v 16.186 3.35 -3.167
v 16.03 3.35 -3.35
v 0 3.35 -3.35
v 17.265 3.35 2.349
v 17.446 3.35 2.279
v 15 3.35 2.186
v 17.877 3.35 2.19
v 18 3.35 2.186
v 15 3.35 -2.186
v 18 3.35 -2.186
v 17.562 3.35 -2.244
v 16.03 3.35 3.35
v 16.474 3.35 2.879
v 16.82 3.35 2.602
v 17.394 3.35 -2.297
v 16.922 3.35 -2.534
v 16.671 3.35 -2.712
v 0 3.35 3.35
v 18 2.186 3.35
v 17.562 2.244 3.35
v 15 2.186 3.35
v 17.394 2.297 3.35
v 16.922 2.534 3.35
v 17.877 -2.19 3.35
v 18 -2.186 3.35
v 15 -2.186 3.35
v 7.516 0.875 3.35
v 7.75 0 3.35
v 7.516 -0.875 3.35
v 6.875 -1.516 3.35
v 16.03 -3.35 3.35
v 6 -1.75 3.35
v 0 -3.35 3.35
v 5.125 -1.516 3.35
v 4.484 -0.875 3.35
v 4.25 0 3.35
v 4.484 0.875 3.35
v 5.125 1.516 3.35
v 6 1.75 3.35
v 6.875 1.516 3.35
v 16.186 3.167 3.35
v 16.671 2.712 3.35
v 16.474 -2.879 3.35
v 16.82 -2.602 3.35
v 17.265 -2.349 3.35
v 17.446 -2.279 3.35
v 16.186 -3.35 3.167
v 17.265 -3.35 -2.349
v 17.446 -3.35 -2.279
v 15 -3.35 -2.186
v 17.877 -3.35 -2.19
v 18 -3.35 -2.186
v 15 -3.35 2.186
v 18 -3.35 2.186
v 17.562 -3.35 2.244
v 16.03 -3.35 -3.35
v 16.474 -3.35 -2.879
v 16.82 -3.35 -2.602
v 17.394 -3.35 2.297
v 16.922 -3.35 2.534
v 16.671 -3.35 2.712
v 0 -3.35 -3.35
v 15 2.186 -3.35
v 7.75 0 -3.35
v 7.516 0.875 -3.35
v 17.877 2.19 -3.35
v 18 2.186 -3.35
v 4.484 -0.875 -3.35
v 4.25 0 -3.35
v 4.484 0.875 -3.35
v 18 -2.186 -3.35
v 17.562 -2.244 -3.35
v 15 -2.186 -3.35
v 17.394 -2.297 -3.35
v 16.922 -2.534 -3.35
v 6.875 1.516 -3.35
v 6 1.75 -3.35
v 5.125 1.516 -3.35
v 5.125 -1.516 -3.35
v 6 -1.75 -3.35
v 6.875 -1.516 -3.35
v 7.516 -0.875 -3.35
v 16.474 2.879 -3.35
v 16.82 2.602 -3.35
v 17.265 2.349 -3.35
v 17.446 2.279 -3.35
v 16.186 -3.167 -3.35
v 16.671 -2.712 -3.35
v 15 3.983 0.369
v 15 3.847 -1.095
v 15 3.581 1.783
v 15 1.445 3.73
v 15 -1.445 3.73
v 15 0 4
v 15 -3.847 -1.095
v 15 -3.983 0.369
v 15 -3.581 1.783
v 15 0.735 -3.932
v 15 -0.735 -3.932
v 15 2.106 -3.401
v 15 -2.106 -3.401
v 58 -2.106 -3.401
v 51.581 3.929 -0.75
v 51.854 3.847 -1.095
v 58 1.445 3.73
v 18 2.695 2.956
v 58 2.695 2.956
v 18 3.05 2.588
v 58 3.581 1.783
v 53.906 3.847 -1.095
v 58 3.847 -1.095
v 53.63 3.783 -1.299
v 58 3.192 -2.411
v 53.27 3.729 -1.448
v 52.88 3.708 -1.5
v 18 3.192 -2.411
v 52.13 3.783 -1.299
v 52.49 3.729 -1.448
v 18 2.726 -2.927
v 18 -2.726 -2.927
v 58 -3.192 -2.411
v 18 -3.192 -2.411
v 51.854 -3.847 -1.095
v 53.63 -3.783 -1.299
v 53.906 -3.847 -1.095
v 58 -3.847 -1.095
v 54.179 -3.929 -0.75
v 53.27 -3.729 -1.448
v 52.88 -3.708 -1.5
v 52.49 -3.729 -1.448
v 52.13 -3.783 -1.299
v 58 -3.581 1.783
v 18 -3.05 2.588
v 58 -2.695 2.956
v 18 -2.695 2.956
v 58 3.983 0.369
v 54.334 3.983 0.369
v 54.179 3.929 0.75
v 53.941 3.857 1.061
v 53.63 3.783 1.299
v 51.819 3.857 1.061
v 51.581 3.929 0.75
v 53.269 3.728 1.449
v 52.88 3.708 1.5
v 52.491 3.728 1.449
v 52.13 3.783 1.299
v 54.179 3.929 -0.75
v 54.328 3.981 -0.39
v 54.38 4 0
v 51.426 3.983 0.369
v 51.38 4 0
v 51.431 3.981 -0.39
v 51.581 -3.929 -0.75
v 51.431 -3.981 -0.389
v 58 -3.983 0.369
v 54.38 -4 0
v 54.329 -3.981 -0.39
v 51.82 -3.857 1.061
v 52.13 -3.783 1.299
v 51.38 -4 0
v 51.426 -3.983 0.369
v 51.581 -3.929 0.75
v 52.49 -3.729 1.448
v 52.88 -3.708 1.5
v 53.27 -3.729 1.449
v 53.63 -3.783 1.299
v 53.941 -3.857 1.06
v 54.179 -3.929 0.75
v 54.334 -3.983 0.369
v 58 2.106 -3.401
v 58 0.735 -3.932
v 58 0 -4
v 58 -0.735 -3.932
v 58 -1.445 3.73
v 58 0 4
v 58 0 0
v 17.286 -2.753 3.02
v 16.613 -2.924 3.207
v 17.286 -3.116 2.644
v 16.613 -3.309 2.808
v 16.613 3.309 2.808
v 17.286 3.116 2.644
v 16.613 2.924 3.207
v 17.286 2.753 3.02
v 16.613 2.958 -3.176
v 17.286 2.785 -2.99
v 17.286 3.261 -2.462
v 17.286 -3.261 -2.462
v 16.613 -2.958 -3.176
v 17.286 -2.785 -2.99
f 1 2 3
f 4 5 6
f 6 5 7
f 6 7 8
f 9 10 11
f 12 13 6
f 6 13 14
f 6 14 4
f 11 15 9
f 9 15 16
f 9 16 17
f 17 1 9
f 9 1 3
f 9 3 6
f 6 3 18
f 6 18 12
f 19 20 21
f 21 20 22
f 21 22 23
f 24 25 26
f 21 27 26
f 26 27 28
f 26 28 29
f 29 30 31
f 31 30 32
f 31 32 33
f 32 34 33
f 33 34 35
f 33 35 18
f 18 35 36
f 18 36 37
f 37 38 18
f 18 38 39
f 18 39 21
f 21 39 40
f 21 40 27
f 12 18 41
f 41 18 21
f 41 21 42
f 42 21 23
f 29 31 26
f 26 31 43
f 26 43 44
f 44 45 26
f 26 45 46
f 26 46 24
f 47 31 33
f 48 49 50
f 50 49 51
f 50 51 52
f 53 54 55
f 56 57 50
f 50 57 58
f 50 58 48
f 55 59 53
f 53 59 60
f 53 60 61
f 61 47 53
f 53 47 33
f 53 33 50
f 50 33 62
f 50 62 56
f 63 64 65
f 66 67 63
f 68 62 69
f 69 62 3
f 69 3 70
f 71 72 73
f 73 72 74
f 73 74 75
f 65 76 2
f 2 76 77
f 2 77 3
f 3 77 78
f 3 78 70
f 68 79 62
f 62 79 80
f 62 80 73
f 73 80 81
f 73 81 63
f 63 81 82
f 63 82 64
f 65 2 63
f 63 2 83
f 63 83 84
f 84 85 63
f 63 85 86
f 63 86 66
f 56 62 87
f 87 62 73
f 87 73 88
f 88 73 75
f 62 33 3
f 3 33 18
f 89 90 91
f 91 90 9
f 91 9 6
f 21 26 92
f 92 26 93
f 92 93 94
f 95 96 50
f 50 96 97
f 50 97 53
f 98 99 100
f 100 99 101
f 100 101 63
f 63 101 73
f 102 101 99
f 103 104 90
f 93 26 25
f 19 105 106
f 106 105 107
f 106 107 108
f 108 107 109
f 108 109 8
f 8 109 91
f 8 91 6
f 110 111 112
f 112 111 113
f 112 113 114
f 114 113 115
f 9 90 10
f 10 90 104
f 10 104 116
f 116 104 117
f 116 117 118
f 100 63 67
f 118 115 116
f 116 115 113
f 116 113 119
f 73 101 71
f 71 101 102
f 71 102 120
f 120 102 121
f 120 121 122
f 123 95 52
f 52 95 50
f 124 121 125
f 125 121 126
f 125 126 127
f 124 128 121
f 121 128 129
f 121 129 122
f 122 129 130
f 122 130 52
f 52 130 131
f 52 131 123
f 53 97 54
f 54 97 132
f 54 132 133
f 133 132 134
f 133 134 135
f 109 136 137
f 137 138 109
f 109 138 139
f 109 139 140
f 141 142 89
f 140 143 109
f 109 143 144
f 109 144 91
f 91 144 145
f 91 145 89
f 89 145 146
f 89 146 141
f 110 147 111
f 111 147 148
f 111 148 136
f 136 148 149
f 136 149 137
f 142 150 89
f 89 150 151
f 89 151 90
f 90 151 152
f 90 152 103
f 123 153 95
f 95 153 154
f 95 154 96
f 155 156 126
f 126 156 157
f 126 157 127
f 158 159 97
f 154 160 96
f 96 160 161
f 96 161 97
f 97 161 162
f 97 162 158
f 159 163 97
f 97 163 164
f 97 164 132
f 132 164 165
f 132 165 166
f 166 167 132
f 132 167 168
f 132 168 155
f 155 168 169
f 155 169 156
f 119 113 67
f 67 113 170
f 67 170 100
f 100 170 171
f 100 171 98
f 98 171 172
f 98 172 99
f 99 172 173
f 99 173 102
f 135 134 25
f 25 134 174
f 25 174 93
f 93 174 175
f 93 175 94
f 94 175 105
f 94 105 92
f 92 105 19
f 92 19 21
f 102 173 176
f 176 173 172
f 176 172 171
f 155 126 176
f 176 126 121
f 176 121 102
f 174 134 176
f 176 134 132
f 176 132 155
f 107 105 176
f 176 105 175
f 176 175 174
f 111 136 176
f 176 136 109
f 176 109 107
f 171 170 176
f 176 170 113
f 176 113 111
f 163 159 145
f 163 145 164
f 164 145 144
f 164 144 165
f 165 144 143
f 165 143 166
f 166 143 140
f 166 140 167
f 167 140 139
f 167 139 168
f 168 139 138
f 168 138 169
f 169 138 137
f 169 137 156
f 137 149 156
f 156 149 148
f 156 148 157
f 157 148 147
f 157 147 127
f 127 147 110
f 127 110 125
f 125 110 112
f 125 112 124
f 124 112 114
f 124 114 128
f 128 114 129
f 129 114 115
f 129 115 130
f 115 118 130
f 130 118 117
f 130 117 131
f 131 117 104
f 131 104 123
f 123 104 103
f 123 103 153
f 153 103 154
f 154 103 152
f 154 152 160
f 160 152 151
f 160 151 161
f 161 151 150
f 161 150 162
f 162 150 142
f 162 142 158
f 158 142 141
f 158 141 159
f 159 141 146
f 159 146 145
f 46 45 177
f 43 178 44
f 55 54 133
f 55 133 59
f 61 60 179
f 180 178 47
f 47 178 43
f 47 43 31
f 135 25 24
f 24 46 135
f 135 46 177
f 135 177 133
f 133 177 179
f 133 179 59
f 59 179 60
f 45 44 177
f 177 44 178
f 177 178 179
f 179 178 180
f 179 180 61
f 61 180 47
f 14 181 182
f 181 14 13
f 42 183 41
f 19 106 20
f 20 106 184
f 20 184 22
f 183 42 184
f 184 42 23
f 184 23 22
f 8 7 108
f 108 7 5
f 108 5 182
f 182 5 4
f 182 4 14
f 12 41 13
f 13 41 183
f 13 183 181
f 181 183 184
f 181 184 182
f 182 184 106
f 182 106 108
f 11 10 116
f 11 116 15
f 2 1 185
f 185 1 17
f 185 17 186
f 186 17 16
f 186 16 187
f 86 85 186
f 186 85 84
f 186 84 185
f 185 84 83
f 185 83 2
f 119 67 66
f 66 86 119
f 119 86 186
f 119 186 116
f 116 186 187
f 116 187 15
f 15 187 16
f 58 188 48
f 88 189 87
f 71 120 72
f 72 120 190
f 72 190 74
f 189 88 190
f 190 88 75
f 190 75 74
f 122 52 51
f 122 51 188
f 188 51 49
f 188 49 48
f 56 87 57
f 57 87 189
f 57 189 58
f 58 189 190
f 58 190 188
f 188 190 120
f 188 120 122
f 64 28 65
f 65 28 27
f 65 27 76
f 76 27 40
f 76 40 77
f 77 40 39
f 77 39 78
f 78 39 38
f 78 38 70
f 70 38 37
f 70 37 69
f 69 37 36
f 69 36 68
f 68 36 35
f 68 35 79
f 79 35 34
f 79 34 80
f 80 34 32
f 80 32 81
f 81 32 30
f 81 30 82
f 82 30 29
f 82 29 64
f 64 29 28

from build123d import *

# Parameters (mm, degrees)
ESQUISSE1_W                  = 6.7
ESQUISSE1_H                  = 6.7
BOSS_EXTRU_1_DEPTH           = 15
ESQUISSE2_R                  = 4
BOSS_EXTRU_2_DEPTH           = 43
ENL_V_MAT_EXTRU_1_DEPTH      = 59.275209137
ENL_V_MAT_EXTRU_1_DEPTH_BACK = 59.275209137
ESQUISSE3_R                  = 1.5
CONG_1_R                     = 3
ENL_V_MAT_EXTRU_2_DEPTH      = 59.600533392
ENL_V_MAT_EXTRU_2_DEPTH_BACK = 59.600533392
ESQUISSE4_R                  = 1.75


with BuildPart() as part:
    # Esquisse1 → Boss.-Extru.1 (new body)
    with BuildSketch(Plane.YZ):
        Rectangle(ESQUISSE1_W, ESQUISSE1_H)
    extrude(amount=BOSS_EXTRU_1_DEPTH)

    # Esquisse2 → Boss.-Extru.2 (add)
    with BuildSketch(Plane.YZ.offset(15)):
        with Locations(Location((0, 0, 0), (0, 0, 56.877059792))):
            Circle(ESQUISSE2_R)
    extrude(amount=BOSS_EXTRU_2_DEPTH)

    # Esquisse3 → Enlèv. mat.-Extru.1 (cut, two sides: drawn at the far end of the back side and taken through both)
    with BuildSketch(Plane(origin=(0, 0, 0), x_dir=(-1, 0, 0), z_dir=(0, 1, 0)).offset(-ENL_V_MAT_EXTRU_1_DEPTH_BACK)):
        with Locations(Location((-52.88, 0, 0), (0, 0, 90))):
            Circle(ESQUISSE3_R)
    extrude(amount=ENL_V_MAT_EXTRU_1_DEPTH + ENL_V_MAT_EXTRU_1_DEPTH_BACK, mode=Mode.SUBTRACT)

    # Congé1
    # the kernel refuses this fillet: 3 mm, written as the material it adds along each edge
    with BuildSketch(Plane(origin=(15, 0, 0), x_dir=(0, -0.9627373172303846, -0.27043827024302985), z_dir=(0, -0.27043827024302985, 0.9627373172303846))) as cong_1_piece_1_section:
        with BuildLine():
            CenterArc((4 + CONG_1_R, CONG_1_R), CONG_1_R, 180, 90)
            Line((4 + CONG_1_R, 0), (4, 0))
            Line((4, 0), (4, CONG_1_R))
        make_face()
    cong_1_piece_1 = revolve(axis=Axis((15, 0, 0), (1, 0, 0)), revolution_arc=238.619303718, mode=Mode.PRIVATE)
    cong_1_piece_1 = split(cong_1_piece_1, bisect_by=Plane(origin=(16.010494669, -2.96099487, 3.35), z_dir=(0, 0, -1)), keep=Keep.TOP, mode=Mode.PRIVATE)
    cong_1_piece_1 = split(cong_1_piece_1, bisect_by=Plane(origin=(16.010494669, -2.96099487, -3.35), z_dir=(0, 0, 1)), keep=Keep.TOP, mode=Mode.PRIVATE)
    cong_1_piece_1 = split(cong_1_piece_1, bisect_by=Plane(origin=(16.010494669, 3.35, -2.96099477), z_dir=(0, -1, 0)), keep=Keep.TOP, mode=Mode.PRIVATE)
    cong_1_piece_1 = split(cong_1_piece_1, bisect_by=Plane(origin=(16.010494669, -3.35, -2.96099477), z_dir=(0, 1, 0)), keep=Keep.TOP, mode=Mode.PRIVATE)
    add(cong_1_piece_1)
    with BuildSketch(Plane(origin=(15, 0, 0), x_dir=(0, 0.27043827024295675, -0.962737317230405), z_dir=(0, -0.962737317230405, -0.27043827024295675))) as cong_1_piece_2_section:
        with BuildLine():
            CenterArc((4 + CONG_1_R, CONG_1_R), CONG_1_R, 180, 90)
            Line((4 + CONG_1_R, 0), (4, 0))
            Line((4, 0), (4, CONG_1_R))
        make_face()
    cong_1_piece_2 = revolve(axis=Axis((15, 0, 0), (1, 0, 0)), revolution_arc=238.619303718, mode=Mode.PRIVATE)
    cong_1_piece_2 = split(cong_1_piece_2, bisect_by=Plane(origin=(16.010494669, 2.96099477, 3.35), z_dir=(0, 0, -1)), keep=Keep.TOP, mode=Mode.PRIVATE)
    cong_1_piece_2 = split(cong_1_piece_2, bisect_by=Plane(origin=(16.010494669, 2.96099477, -3.35), z_dir=(0, 0, 1)), keep=Keep.TOP, mode=Mode.PRIVATE)
    cong_1_piece_2 = split(cong_1_piece_2, bisect_by=Plane(origin=(16.010494669, 3.35, -2.96099487), z_dir=(0, -1, 0)), keep=Keep.TOP, mode=Mode.PRIVATE)
    cong_1_piece_2 = split(cong_1_piece_2, bisect_by=Plane(origin=(16.010494669, -3.35, -2.96099487), z_dir=(0, 1, 0)), keep=Keep.TOP, mode=Mode.PRIVATE)
    add(cong_1_piece_2)
    with BuildSketch(Plane(origin=(15, 0, 0), x_dir=(0, 0.9627373172304061, 0.27043827024295286), z_dir=(0, 0.27043827024295286, -0.9627373172304061))) as cong_1_piece_3_section:
        with BuildLine():
            CenterArc((4 + CONG_1_R, CONG_1_R), CONG_1_R, 180, 90)
            Line((4 + CONG_1_R, 0), (4, 0))
            Line((4, 0), (4, CONG_1_R))
        make_face()
    cong_1_piece_3 = revolve(axis=Axis((15, 0, 0), (1, 0, 0)), revolution_arc=238.619303718, mode=Mode.PRIVATE)
    cong_1_piece_3 = split(cong_1_piece_3, bisect_by=Plane(origin=(16.010494669, 2.96099487, 3.35), z_dir=(0, 0, -1)), keep=Keep.TOP, mode=Mode.PRIVATE)
    cong_1_piece_3 = split(cong_1_piece_3, bisect_by=Plane(origin=(16.010494669, 2.96099487, -3.35), z_dir=(0, 0, 1)), keep=Keep.TOP, mode=Mode.PRIVATE)
    cong_1_piece_3 = split(cong_1_piece_3, bisect_by=Plane(origin=(16.010494669, 3.35, 2.96099477), z_dir=(0, -1, 0)), keep=Keep.TOP, mode=Mode.PRIVATE)
    cong_1_piece_3 = split(cong_1_piece_3, bisect_by=Plane(origin=(16.010494669, -3.35, 2.96099477), z_dir=(0, 1, 0)), keep=Keep.TOP, mode=Mode.PRIVATE)
    add(cong_1_piece_3)
    with BuildSketch(Plane(origin=(15, 0, 0), x_dir=(0, -0.2704382702430083, 0.9627373172303906), z_dir=(0, 0.9627373172303906, 0.2704382702430083))) as cong_1_piece_4_section:
        with BuildLine():
            CenterArc((4 + CONG_1_R, CONG_1_R), CONG_1_R, 180, 90)
            Line((4 + CONG_1_R, 0), (4, 0))
            Line((4, 0), (4, CONG_1_R))
        make_face()
    cong_1_piece_4 = revolve(axis=Axis((15, 0, 0), (1, 0, 0)), revolution_arc=238.619303718, mode=Mode.PRIVATE)
    cong_1_piece_4 = split(cong_1_piece_4, bisect_by=Plane(origin=(16.010494669, -2.96099477, 3.35), z_dir=(0, 0, -1)), keep=Keep.TOP, mode=Mode.PRIVATE)
    cong_1_piece_4 = split(cong_1_piece_4, bisect_by=Plane(origin=(16.010494669, -2.96099477, -3.35), z_dir=(0, 0, 1)), keep=Keep.TOP, mode=Mode.PRIVATE)
    cong_1_piece_4 = split(cong_1_piece_4, bisect_by=Plane(origin=(16.010494669, 3.35, 2.96099487), z_dir=(0, -1, 0)), keep=Keep.TOP, mode=Mode.PRIVATE)
    cong_1_piece_4 = split(cong_1_piece_4, bisect_by=Plane(origin=(16.010494669, -3.35, 2.96099487), z_dir=(0, 1, 0)), keep=Keep.TOP, mode=Mode.PRIVATE)
    add(cong_1_piece_4)

    # Esquisse4 → Enlèv. mat.-Extru.2 (cut, two sides: drawn at the far end of the back side and taken through both)
    with BuildSketch(Plane(origin=(0, 0, 3.35), x_dir=(-1, 0, 0), z_dir=(0, 0, -1)).offset(-ENL_V_MAT_EXTRU_2_DEPTH_BACK)):
        with Locations(Location((-6, 0, 0), (0, 0, 180))):
            Circle(ESQUISSE4_R)
    extrude(amount=ENL_V_MAT_EXTRU_2_DEPTH + ENL_V_MAT_EXTRU_2_DEPTH_BACK, mode=Mode.SUBTRACT)


solid = part.part
